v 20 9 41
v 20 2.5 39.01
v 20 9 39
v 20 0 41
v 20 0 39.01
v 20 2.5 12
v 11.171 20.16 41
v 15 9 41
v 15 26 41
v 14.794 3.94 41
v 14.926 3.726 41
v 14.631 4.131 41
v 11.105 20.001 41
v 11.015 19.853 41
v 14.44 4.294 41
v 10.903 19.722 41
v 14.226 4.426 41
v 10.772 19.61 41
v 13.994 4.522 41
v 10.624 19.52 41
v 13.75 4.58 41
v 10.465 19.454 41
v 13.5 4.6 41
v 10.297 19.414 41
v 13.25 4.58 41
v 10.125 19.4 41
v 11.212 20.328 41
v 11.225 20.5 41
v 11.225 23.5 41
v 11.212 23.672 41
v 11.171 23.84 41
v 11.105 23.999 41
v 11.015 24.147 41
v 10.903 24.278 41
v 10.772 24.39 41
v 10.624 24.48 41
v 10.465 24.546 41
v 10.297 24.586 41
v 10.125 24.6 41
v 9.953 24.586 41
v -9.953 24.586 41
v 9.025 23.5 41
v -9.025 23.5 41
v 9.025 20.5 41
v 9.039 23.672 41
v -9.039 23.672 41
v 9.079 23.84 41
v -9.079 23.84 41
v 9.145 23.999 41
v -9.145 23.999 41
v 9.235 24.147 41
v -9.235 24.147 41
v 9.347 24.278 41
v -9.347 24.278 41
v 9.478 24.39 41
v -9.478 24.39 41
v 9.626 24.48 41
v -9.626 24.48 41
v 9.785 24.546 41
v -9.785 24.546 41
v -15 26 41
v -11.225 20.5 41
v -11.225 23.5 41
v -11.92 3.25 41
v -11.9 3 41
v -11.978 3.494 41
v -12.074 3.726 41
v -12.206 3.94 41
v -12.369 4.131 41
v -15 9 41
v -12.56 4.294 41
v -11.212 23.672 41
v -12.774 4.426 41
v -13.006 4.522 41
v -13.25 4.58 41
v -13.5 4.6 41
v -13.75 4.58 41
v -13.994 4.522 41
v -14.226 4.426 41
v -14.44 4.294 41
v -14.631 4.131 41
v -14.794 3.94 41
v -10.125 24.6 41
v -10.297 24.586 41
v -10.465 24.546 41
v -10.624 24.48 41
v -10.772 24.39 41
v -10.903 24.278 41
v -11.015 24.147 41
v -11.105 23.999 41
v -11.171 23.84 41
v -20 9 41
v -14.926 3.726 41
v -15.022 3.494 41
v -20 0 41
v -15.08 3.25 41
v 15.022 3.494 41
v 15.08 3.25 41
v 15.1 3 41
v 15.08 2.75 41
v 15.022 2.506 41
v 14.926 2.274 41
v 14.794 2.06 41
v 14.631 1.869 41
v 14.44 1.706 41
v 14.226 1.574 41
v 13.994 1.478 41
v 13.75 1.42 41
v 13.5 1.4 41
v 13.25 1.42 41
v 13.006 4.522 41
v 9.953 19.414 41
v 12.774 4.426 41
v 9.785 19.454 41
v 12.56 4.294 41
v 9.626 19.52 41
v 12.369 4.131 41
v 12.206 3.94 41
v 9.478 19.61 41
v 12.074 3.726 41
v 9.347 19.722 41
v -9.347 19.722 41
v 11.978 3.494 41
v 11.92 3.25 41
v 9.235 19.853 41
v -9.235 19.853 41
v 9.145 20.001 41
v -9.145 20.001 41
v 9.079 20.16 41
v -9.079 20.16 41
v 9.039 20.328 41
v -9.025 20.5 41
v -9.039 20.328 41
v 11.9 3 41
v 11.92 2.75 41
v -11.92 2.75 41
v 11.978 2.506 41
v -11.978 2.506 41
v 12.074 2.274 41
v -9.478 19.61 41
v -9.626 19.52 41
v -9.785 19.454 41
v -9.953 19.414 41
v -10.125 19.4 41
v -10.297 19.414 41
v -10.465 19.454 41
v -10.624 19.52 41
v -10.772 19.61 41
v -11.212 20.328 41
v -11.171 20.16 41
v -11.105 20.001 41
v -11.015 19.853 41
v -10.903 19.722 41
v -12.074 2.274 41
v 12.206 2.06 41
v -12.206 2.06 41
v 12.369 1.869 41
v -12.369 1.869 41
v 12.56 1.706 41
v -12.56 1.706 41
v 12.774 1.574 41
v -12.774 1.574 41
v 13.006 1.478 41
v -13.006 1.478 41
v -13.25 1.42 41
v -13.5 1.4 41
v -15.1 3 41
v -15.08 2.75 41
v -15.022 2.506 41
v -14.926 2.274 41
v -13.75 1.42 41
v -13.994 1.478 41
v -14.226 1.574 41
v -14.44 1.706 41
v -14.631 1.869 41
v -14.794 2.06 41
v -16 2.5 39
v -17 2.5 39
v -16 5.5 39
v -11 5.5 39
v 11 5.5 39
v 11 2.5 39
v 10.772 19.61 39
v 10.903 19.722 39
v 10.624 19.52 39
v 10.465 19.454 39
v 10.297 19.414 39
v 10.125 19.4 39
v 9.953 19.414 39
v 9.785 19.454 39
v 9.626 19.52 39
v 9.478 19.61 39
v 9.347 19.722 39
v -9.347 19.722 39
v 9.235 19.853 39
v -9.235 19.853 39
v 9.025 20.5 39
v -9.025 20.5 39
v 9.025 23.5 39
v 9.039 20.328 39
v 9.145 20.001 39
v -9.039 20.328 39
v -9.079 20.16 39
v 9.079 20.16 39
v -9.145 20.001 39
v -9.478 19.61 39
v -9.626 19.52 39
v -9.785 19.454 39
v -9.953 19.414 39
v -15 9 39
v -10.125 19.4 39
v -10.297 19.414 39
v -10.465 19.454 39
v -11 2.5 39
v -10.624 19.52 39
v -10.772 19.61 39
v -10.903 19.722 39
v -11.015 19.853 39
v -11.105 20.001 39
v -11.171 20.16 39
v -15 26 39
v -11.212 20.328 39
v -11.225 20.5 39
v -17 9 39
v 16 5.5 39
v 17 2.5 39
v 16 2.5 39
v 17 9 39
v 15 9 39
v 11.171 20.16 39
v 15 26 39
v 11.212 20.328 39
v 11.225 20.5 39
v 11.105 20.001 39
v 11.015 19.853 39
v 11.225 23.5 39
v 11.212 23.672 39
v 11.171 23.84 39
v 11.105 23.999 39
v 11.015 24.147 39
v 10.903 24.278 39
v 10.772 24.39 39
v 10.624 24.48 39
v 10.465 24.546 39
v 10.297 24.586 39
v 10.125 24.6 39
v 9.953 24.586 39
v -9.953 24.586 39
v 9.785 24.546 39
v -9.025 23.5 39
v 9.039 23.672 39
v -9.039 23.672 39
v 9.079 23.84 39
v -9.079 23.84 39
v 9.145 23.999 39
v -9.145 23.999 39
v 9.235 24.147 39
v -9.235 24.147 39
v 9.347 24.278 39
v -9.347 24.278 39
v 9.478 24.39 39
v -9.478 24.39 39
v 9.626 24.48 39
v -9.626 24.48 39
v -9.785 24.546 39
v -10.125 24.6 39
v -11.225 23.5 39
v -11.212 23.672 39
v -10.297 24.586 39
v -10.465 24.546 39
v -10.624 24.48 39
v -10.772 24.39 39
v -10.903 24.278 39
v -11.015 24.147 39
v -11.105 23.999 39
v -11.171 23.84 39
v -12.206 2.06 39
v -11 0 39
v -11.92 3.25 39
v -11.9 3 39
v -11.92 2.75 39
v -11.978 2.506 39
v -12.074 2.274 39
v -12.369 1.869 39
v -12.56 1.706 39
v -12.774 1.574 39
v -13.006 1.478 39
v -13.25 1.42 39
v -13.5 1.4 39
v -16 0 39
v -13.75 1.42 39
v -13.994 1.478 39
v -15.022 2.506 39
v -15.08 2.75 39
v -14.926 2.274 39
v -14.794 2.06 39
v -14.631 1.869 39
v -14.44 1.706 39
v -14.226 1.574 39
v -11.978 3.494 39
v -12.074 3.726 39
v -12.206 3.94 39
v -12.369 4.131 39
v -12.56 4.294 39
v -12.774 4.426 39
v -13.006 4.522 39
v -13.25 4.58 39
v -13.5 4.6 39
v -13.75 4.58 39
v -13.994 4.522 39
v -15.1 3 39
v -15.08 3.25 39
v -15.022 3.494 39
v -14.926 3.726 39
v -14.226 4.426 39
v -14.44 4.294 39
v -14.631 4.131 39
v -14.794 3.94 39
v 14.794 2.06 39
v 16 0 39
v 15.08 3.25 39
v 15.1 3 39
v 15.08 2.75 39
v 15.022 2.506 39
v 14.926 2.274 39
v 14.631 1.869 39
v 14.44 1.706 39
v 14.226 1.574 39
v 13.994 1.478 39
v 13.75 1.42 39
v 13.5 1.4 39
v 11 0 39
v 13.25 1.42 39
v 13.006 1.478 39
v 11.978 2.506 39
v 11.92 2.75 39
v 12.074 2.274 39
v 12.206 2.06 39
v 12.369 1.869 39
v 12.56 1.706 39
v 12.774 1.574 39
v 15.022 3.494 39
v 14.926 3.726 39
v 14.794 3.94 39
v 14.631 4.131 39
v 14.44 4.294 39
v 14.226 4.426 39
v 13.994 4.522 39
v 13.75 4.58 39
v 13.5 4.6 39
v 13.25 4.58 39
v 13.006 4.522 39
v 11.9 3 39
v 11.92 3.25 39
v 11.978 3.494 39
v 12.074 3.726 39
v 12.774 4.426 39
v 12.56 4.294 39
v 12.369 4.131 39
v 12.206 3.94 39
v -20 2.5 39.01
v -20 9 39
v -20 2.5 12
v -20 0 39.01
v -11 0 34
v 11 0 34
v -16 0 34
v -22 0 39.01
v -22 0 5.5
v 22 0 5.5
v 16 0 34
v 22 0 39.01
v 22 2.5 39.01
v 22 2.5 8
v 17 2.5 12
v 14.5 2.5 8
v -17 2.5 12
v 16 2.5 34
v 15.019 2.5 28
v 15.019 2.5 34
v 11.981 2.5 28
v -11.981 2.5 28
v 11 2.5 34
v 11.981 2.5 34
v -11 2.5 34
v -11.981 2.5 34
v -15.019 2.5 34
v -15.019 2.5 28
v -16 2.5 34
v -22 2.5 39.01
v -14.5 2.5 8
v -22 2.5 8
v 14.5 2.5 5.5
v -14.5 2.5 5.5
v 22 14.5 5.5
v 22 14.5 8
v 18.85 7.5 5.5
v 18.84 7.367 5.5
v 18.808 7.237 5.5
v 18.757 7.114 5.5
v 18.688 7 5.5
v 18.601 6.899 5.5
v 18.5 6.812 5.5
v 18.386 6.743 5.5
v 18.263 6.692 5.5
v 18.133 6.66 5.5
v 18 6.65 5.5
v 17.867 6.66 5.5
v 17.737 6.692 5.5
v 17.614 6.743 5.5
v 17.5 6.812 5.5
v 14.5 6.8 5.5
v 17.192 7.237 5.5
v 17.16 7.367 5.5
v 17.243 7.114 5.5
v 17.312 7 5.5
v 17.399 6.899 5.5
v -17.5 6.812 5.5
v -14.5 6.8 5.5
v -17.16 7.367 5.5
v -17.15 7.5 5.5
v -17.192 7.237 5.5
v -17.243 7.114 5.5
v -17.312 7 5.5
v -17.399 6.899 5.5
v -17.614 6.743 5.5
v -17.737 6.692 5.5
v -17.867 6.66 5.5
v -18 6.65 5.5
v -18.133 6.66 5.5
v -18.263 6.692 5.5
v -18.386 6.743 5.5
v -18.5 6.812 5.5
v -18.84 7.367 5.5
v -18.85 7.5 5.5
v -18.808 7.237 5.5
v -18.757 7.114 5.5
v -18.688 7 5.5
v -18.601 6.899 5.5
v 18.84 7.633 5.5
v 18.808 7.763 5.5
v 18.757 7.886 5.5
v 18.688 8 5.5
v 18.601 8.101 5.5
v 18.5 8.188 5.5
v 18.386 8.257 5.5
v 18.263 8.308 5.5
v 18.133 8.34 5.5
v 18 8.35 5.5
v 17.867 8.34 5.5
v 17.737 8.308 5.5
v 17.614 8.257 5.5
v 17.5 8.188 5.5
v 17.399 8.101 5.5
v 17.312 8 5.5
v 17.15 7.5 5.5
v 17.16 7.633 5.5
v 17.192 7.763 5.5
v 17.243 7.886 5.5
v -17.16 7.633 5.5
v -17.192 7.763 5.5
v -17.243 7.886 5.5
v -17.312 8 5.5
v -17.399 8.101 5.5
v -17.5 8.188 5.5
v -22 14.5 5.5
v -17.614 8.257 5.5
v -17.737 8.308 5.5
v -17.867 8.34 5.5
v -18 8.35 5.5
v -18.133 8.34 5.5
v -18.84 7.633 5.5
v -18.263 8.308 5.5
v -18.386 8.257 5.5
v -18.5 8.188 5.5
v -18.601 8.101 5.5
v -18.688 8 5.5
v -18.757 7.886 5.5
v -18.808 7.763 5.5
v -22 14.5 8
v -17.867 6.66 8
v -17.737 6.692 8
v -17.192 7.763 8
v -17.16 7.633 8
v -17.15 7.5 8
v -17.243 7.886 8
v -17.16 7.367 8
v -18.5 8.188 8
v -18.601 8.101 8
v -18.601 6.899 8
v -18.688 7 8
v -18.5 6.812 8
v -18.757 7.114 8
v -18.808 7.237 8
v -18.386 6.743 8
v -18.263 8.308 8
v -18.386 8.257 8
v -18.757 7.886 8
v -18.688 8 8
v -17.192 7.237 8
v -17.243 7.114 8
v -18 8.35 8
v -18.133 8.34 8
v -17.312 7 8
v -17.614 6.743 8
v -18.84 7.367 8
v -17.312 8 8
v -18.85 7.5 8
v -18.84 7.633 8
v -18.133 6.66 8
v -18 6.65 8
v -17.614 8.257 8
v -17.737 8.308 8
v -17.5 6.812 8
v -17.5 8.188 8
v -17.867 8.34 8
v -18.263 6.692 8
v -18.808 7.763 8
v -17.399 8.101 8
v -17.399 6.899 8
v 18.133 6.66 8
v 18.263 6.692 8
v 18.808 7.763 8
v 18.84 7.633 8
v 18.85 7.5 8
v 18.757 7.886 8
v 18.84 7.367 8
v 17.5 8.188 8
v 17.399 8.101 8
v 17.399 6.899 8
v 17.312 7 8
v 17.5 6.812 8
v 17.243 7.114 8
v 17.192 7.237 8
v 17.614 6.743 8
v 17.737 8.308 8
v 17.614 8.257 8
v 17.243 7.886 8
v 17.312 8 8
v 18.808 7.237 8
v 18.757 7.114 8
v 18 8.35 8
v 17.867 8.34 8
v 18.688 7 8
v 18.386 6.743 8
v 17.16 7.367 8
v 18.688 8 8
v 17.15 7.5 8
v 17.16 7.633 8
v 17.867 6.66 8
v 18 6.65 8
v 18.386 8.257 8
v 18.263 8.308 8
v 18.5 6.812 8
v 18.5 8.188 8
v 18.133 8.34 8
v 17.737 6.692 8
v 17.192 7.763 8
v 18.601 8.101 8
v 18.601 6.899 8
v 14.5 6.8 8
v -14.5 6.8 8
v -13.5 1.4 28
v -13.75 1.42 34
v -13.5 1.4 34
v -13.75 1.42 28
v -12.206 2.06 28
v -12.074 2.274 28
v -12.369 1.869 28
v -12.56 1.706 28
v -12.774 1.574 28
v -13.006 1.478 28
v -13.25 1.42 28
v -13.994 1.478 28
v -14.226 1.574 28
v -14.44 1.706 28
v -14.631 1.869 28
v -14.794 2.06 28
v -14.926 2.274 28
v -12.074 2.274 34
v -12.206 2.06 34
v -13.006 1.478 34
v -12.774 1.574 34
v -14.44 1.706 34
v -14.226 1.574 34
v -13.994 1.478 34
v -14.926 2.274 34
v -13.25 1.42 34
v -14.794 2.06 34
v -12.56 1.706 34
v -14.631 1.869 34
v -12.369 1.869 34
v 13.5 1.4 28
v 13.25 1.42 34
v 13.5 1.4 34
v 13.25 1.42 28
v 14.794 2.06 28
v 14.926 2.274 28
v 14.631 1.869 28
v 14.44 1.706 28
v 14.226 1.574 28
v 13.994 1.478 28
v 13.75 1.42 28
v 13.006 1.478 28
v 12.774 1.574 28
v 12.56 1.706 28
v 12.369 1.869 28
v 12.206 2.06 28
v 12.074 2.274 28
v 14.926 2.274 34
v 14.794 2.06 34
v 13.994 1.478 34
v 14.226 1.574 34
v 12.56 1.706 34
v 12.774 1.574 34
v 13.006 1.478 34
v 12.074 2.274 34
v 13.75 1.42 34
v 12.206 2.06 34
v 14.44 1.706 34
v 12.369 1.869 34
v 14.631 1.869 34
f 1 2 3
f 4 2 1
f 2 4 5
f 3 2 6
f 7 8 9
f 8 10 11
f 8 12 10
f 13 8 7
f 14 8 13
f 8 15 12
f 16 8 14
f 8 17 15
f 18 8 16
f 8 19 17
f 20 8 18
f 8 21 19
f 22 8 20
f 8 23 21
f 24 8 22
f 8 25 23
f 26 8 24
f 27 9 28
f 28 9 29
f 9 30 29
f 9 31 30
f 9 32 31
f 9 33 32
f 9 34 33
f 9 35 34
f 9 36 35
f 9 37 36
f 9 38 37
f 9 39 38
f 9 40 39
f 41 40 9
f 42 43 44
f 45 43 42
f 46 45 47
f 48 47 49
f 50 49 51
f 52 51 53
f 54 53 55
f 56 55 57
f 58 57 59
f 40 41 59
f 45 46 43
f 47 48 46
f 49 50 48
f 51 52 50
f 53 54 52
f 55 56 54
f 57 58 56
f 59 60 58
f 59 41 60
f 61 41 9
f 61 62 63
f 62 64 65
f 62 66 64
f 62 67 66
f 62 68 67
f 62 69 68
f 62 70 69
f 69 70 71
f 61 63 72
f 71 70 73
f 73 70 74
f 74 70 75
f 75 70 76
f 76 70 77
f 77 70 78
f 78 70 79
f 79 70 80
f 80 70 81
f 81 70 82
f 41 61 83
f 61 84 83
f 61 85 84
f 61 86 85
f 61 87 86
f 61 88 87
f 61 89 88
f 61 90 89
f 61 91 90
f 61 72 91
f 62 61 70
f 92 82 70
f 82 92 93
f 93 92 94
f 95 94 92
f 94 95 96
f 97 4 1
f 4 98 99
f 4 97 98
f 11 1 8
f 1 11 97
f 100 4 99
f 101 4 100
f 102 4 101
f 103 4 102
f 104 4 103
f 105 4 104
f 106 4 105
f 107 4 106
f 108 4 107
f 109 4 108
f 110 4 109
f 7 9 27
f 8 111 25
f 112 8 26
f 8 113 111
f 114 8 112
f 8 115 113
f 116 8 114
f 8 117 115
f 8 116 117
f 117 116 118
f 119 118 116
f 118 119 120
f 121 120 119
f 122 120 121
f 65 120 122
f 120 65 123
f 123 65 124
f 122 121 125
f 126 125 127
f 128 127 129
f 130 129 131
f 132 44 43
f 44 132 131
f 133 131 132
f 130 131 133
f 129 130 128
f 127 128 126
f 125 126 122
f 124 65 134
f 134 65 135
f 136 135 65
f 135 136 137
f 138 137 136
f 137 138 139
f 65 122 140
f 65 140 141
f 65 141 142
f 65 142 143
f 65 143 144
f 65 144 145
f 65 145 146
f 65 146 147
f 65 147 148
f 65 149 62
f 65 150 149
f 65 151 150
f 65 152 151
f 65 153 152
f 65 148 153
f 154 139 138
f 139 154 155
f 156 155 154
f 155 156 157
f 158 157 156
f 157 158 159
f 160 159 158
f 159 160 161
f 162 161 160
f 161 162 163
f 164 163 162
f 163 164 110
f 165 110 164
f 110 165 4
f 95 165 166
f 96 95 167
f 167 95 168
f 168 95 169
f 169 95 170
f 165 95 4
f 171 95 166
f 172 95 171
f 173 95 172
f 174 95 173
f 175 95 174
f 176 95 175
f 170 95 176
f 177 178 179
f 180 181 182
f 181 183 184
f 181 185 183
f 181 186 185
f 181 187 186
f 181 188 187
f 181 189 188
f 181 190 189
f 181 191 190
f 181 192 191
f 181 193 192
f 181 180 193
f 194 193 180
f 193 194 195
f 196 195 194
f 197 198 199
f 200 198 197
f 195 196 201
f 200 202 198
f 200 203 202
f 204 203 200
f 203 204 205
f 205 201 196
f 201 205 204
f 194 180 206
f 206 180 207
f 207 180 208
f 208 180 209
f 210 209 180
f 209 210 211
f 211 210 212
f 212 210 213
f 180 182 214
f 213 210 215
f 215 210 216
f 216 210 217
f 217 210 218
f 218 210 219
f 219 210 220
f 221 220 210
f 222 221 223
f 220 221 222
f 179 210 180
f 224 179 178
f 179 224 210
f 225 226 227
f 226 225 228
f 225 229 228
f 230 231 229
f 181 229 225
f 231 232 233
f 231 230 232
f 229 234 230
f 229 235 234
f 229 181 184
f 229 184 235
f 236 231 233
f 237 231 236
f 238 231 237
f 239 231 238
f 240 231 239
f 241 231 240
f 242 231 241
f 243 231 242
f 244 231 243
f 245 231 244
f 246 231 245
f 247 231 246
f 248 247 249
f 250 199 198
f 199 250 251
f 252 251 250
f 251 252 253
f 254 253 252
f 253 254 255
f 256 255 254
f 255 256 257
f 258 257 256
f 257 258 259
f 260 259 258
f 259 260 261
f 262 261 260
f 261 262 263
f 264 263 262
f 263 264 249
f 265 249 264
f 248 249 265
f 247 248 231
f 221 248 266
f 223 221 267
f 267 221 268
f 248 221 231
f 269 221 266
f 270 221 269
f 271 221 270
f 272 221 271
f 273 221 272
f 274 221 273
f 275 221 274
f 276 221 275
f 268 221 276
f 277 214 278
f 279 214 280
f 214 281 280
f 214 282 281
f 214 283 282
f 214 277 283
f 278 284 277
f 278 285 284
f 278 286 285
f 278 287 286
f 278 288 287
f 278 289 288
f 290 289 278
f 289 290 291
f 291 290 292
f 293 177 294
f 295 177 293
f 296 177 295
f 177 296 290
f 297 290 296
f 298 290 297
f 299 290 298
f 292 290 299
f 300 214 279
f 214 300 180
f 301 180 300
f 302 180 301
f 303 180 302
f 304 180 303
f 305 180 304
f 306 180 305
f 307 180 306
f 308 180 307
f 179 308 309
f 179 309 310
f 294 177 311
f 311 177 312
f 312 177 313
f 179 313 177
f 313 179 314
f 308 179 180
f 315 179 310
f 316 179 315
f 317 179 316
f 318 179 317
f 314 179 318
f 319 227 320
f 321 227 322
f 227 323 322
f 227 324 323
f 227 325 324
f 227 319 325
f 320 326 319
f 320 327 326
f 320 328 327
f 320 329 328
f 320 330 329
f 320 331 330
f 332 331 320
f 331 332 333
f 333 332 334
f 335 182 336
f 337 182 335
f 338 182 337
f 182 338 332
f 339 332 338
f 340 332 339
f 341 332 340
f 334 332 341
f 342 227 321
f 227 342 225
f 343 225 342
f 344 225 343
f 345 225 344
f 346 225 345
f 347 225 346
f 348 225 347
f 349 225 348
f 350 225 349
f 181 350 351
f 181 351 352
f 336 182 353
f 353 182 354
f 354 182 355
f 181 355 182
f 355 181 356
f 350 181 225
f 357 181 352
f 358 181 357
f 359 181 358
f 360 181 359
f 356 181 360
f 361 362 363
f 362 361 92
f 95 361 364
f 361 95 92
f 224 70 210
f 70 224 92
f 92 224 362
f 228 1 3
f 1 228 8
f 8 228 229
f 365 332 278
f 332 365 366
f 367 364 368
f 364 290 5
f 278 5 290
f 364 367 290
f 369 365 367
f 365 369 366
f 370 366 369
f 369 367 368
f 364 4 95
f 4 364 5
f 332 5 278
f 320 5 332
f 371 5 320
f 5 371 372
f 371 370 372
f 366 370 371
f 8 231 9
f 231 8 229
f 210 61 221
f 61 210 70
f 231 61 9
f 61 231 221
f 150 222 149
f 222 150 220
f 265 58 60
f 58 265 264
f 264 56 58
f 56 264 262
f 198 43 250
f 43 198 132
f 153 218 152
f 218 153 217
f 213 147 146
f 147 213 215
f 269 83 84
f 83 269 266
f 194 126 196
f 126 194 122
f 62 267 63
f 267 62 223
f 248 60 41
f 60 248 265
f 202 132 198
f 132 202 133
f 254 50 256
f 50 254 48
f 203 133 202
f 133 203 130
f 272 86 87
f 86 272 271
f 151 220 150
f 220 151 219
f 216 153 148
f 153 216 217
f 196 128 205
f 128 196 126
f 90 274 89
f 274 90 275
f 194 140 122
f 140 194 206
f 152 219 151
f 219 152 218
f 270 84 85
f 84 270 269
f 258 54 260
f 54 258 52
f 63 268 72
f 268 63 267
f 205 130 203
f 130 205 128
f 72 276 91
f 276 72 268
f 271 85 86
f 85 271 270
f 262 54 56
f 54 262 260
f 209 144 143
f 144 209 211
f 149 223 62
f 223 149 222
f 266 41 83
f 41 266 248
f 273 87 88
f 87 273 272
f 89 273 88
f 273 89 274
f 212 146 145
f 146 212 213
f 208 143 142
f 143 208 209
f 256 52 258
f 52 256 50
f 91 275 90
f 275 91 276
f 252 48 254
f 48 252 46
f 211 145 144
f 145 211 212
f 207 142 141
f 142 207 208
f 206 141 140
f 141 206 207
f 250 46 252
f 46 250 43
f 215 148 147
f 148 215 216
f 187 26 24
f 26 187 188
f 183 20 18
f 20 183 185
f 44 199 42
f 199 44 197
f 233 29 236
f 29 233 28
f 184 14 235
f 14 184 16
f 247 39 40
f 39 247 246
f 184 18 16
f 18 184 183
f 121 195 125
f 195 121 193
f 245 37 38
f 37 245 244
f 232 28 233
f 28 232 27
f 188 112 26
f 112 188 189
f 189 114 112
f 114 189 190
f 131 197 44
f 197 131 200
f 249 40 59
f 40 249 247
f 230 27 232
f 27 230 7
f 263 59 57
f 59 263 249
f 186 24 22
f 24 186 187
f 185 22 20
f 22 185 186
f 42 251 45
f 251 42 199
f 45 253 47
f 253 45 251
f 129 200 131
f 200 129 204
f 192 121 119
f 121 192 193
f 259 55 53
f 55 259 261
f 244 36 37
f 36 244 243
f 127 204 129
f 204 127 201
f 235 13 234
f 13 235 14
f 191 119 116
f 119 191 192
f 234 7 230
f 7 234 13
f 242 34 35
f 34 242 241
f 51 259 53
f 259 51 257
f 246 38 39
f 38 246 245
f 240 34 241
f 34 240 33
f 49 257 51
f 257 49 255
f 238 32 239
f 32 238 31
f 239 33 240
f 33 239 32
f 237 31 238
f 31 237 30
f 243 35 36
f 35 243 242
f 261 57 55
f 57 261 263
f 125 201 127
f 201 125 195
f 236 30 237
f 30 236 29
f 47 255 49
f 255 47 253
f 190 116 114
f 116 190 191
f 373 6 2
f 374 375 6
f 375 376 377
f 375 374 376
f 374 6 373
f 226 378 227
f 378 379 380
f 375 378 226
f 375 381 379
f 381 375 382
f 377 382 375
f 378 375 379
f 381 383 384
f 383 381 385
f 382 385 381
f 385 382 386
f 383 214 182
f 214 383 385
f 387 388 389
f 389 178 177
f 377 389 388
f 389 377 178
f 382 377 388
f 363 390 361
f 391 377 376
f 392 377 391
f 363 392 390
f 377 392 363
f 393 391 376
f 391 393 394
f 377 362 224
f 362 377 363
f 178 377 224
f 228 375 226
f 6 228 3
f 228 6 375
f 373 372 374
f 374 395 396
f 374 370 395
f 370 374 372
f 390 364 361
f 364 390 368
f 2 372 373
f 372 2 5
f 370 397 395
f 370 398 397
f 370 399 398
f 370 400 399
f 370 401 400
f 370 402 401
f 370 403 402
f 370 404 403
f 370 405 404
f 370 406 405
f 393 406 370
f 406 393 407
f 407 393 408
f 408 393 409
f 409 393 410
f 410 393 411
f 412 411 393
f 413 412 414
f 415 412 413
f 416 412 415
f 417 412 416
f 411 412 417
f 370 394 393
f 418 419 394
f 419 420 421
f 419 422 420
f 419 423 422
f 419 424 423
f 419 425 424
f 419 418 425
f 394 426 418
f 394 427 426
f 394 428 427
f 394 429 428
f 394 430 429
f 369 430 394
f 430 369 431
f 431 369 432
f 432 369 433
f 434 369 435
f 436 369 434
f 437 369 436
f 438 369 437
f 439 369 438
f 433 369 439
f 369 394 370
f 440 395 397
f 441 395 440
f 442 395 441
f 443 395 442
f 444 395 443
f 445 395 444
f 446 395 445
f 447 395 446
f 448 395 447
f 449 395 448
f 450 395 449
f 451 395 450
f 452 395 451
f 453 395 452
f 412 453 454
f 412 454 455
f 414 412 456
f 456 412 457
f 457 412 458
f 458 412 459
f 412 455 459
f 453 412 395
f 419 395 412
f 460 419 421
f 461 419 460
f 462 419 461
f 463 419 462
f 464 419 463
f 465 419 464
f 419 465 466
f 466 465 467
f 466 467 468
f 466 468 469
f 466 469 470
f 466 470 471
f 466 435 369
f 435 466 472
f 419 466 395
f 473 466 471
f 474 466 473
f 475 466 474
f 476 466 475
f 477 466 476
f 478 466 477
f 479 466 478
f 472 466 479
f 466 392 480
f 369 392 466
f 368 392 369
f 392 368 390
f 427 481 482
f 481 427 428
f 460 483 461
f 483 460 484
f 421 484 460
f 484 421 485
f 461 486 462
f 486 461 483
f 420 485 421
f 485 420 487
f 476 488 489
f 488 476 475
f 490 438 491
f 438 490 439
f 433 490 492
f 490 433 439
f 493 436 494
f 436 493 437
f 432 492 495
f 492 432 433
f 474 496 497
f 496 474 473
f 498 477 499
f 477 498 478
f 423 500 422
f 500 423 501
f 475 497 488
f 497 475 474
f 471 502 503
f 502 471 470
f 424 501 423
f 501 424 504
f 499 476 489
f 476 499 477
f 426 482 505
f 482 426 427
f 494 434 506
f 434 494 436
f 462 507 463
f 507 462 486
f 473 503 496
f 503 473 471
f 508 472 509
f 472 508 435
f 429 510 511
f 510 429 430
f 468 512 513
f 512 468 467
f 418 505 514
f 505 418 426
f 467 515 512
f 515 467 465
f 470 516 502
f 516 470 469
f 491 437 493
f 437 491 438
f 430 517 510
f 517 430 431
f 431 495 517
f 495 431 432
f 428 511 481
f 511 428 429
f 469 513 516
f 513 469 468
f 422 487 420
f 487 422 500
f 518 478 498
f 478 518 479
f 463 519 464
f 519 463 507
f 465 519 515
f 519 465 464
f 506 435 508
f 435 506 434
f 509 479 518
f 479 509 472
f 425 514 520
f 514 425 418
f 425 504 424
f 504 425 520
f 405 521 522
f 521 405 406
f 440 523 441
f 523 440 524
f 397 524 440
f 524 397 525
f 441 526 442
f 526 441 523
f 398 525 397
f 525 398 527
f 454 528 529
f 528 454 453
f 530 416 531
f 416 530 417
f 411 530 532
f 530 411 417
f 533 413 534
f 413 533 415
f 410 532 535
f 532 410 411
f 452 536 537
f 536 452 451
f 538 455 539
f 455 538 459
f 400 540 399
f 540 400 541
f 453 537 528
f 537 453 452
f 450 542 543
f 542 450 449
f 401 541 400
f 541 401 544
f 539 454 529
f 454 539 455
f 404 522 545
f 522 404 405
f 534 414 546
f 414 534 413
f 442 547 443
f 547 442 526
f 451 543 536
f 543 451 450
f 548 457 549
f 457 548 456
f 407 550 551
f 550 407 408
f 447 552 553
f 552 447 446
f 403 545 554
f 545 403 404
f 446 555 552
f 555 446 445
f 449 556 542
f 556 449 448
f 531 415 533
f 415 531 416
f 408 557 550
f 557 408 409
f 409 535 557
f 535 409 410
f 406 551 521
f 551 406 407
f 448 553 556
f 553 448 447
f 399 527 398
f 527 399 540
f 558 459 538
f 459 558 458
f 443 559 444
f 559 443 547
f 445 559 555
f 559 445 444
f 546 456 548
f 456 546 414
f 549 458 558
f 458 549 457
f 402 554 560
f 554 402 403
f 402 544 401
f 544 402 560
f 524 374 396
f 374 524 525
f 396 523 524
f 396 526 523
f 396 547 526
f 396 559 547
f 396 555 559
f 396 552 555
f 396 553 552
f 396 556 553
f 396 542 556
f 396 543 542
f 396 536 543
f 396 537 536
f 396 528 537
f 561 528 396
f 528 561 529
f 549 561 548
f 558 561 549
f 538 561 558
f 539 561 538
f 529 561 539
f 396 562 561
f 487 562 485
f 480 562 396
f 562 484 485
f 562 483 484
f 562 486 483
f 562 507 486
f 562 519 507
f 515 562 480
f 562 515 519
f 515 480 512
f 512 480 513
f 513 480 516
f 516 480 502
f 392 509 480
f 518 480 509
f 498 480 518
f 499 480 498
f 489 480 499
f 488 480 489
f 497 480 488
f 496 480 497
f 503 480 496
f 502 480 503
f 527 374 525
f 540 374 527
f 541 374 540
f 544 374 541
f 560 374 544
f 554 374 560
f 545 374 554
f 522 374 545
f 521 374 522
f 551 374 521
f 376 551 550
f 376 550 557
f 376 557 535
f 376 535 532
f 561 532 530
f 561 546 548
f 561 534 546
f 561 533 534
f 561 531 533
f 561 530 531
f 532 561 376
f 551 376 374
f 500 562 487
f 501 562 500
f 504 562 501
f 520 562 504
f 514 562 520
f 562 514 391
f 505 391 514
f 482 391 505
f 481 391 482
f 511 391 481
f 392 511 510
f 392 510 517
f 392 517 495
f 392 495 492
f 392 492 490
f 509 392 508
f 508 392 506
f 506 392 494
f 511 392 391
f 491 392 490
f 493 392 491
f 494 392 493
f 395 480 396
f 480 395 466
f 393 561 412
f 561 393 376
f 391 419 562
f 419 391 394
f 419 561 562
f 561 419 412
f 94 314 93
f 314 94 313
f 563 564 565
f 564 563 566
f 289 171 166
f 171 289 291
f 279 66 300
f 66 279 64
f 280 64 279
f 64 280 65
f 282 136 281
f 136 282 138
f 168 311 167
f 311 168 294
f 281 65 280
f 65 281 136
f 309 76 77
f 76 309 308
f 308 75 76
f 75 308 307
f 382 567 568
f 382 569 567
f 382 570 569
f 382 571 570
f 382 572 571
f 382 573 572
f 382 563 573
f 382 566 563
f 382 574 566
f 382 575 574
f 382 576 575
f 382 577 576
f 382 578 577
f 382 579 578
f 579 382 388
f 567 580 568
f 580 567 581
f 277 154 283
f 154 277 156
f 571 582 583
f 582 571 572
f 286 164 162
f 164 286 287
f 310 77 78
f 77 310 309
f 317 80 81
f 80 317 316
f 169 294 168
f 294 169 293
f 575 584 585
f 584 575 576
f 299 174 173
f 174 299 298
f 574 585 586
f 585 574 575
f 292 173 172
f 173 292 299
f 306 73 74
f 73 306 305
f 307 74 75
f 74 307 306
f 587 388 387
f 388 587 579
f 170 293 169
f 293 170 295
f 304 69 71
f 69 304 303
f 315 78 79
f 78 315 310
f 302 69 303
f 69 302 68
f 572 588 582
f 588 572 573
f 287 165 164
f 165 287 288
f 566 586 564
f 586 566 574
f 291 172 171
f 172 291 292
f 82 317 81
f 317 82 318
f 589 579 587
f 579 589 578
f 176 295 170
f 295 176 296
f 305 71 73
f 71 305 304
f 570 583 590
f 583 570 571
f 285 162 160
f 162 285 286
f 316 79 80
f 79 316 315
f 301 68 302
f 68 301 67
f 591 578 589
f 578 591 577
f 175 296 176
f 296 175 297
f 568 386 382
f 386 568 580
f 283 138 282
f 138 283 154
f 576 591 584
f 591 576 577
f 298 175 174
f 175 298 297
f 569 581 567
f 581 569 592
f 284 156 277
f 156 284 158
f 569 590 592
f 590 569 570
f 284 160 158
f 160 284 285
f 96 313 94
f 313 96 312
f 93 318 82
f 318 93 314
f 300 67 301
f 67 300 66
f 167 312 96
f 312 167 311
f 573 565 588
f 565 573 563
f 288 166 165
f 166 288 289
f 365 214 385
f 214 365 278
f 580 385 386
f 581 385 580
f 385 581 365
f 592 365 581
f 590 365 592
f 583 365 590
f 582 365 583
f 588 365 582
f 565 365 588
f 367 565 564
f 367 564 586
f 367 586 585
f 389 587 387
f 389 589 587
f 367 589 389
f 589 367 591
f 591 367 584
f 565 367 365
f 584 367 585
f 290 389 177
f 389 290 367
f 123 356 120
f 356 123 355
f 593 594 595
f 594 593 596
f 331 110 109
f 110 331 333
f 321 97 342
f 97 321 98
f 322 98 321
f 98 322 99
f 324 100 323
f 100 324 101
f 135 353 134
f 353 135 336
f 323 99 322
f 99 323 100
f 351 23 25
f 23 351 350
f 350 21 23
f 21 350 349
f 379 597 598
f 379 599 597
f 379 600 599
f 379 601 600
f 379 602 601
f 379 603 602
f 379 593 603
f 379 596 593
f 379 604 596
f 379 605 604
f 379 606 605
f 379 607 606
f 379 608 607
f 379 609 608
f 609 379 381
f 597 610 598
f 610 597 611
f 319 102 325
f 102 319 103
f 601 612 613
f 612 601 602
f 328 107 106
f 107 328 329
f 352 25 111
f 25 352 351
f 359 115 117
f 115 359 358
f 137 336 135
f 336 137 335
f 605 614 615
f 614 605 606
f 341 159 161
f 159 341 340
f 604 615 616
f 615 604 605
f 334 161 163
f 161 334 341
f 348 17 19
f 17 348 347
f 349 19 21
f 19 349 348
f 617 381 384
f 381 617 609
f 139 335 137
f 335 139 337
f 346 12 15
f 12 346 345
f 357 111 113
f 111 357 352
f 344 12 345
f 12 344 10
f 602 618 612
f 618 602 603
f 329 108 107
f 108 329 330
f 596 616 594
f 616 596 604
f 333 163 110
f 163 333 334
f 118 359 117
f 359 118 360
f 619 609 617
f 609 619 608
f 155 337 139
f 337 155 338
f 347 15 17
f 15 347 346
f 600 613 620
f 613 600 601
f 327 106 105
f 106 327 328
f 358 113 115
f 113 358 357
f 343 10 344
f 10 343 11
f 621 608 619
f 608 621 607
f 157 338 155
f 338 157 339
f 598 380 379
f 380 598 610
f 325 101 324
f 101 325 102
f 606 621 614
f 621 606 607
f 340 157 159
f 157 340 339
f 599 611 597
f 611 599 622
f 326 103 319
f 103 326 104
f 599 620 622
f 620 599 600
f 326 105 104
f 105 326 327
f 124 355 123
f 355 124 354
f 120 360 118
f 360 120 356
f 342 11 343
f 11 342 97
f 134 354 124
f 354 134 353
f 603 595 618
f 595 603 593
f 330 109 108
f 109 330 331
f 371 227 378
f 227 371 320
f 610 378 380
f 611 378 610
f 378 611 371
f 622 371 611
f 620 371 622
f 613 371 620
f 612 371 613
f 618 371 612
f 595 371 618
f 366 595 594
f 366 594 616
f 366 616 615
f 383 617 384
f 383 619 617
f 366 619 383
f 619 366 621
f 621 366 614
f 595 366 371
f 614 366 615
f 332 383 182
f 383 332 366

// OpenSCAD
// Line sensor bracket - LAFVIN 4WD mecanum chassis + QYF-750 8-channel line board
//
// Hangs the line sensor board under the front of the chassis, centred on the
// robot, sensor faces LINE_GAP above the floor. Nothing sits on TOP of the
// chassis (the sonar bracket covers that area with 0.1 mm to spare):
//   - a thin flange sits UNDER the chassis and is clamped by the sonar
//     bracket's own two small (M1.5 / M1.6) screws and nuts (no new screws);
//   - the front-most hole pair takes two screws from the top (heads on the
//     chassis at the very front edge) with nuts underneath: a 5 x 5 window
//     through the wall's front face lets each nut slide in under the flange;
//   - four screws in all (two front, two sonar) locate it; no pegs, which
//     would only snap off;
//   - a wall drops straight down at the front edge to a shelf that runs
//     BACK under the chassis (same direction as the flange: a C shape); the
//     board screws to the shelf from below with two M2 x 6 kit screws
//     threading into the plastic (no nuts), header edge against the wall;
//   - a window in the shelf over the header pins lets the wires go straight
//     up behind the wall and back under the chassis to the wire slot behind
//     the sonar row.
//
// Frame: x = right (0 = robot centreline), y = BACKWARD from the chassis front
// edge at the front hole pair, z = up from the floor. All sizes in mm.
// Print FACE DOWN: the wall's front face on the bed, flange and shelf standing
// up. No supports.
// Measured 2026-09-25; the lines marked CHECK are estimates - measure first.

// ---- chassis ----
chassis_underside_z   = 41;     // top of chassis 46 above floor, 5 thick
chassis_thickness     = 5;
front_pair_spacing    = 27;     // front hole rectangle, left-right
front_pair_y          = 3.0;    // CHECK: 1.5 mm hole-edge to chassis edge -> centre 3.0 behind the edge
second_pair_y         = 13.0;   // 10 mm behind the front pair (not used)
sonar_row_y           = 22.0;   // CHECK: estimated from the photo (front pair + ~19)
sonar_screw_spacing   = 20.25;  // CHECK: outer pair, M1.6-ish screws; calipers gave 22.5 outside / 18 inside
sonar_inner_spacing   = 12.5;   // inner pair, M1.5/M1.6-size (not used)
motor_gap             = 33;     // between the two front motors at the sonar row
chassis_hole_d        = 3.0;

// ---- line board (QYF-750) ----
line_gap              = 2.5;    // floor to sensor faces (1-3 works; 2-3 chosen)
board_sensor_to_back  = 3.0;    // sensor face to the back of the PCB
pcb_width             = 66;
pcb_depth             = 11;
pcb_hole_spacing      = 36;
pcb_hole_from_pin_edge = 4.0;   // CHECK: hole centres to the header-side PCB edge
pin_row_from_pin_edge = 1.5;    // header pins to that edge
pin_window_width      = 29;     // 10 pins at 2.54 + Dupont housings
board_gap_to_wall     = 1.0;    // gap between the PCB's header edge and the wall

// ---- part ----
flange_thickness      = 2.0;    // 4.3 of screw below the chassis: 2.0 + an M1.6 nut (1.3) fits
wall_thickness        = 2.5;
shelf_thickness       = 2.5;
wall_half_width       = 22;
flange_front_half     = 20;     // wide part at the front (ahead of the motors)
flange_front_depth    = 9;
flange_rear_half      = 15;     // must pass between the motors (motor_gap / 2 = 16.5)
front_screw_clear_d   = 3.2;    // front-most pair: clearance for M3 (fine for M2 too)
front_screw_depth     = 13;     // screw tail clearance below the flange top: M2/M3 x 10-12 fit
nut_window            = 5;      // 5 x 5 window for the nut, just under the flange
screw_slot_d          = 2.2;    // clearance for the sonar screws (M1.5 / M1.6)
screw_slot_play       = 3.0;    // extra length front-back, in case sonar_row_y is off
m2_pilot_d            = 1.7;    // M2 screw threads into the plastic
gusset_thickness      = 3;
$fn = 40;

// ---- derived ----
board_back_z = line_gap + board_sensor_to_back;          // shelf underside
shelf_top_z  = board_back_z + shelf_thickness;
flange_bottom_z = chassis_underside_z - flange_thickness;
pcb_pin_edge_y    = wall_thickness + board_gap_to_wall;  // header edge, against the wall
pcb_sensor_edge_y = pcb_pin_edge_y + pcb_depth;
pcb_hole_y   = pcb_pin_edge_y + pcb_hole_from_pin_edge;
pin_row_y    = pcb_pin_edge_y + pin_row_from_pin_edge;
flange_rear_y = sonar_row_y + 4;

assert(flange_rear_half * 2 < motor_gap, "flange too wide to pass between the motors");

module flange() {
  difference() {
    union() {
      translate([-flange_front_half, 0, flange_bottom_z])
        cube([flange_front_half * 2, flange_front_depth, flange_thickness]);
      translate([-flange_rear_half, 0, flange_bottom_z])
        cube([flange_rear_half * 2, flange_rear_y, flange_thickness]);
    }
    // sonar screws: slots, so a little error in sonar_row_y still fits
    for (side = [-1, 1])
      hull() for (dy = [-screw_slot_play / 2, screw_slot_play / 2])
        translate([side * sonar_screw_spacing / 2, sonar_row_y + dy, flange_bottom_z - 1])
          cylinder(d = screw_slot_d, h = flange_thickness + 2);
  }
}

module wall() {
  translate([-wall_half_width, 0, board_back_z])
    cube([wall_half_width * 2, wall_thickness, flange_bottom_z - board_back_z + 0.01]);
  // gussets behind the wall, under the wide front part of the flange
  for (x = [-(flange_front_half - gusset_thickness / 2), flange_front_half - gusset_thickness / 2])
    translate([x - gusset_thickness / 2, wall_thickness, flange_bottom_z])
      rotate([0, 90, 0]) linear_extrude(gusset_thickness)
        polygon([[0, 0], [0, flange_front_depth - wall_thickness], [flange_bottom_z - shelf_top_z - 4, 0]]);
}

module shelf() {
  difference() {
    translate([-wall_half_width, 0, board_back_z])
      cube([wall_half_width * 2, pcb_sensor_edge_y, shelf_thickness]);
    // M2 pilot holes: screws come up from below through the board
    for (side = [-1, 1])
      translate([side * pcb_hole_spacing / 2, pcb_hole_y, board_back_z - 1])
        cylinder(d = m2_pilot_d, h = shelf_thickness + 2);
    // window over the header pins: the wires go straight up behind the wall
    translate([-pin_window_width / 2, wall_thickness, board_back_z - 1])
      cube([pin_window_width, pin_row_y + 1.8 - wall_thickness, shelf_thickness + 2]);
  }
}

module line_board_ghost() {
  // for the preview only: the PCB and its sensors
  %translate([-pcb_width / 2, pcb_pin_edge_y, board_back_z - 1.5]) cube([pcb_width, pcb_depth, 1.5]);
  %for (i = [0:7]) translate([-28 + i * 8 - 1.25, pcb_sensor_edge_y - 4, line_gap]) cube([2.5, 3, 1.5]);
}

// Screw hole through the flange (and the back of the wall below it, for the
// screw's tail), plus the nut window: 5 x 5 through the wall's front face,
// right under the flange.
module front_screw_holes() {
  for (side = [-1, 1]) {
    translate([side * front_pair_spacing / 2, front_pair_y, chassis_underside_z - front_screw_depth])
      cylinder(d = front_screw_clear_d, h = front_screw_depth + 1);
    translate([side * front_pair_spacing / 2 - nut_window / 2, -1, flange_bottom_z - nut_window])
      cube([nut_window, front_pair_y + nut_window / 2 + 1, nut_window]);
  }
}

module bracket() {
  difference() {
    union() {
      flange();
      wall();
      shelf();
    }
    front_screw_holes();
  }
}

// "bracket" = the whole part. "fit_test" = only the flange, flat: a few
// minutes to print, to check the holes against the chassis
// before printing the real thing.
part = "bracket";

if (part == "fit_test") {
  translate([0, 0, -flange_bottom_z]) difference() { flange(); front_screw_holes(); }
} else {
  bracket();
  line_board_ghost();
}
